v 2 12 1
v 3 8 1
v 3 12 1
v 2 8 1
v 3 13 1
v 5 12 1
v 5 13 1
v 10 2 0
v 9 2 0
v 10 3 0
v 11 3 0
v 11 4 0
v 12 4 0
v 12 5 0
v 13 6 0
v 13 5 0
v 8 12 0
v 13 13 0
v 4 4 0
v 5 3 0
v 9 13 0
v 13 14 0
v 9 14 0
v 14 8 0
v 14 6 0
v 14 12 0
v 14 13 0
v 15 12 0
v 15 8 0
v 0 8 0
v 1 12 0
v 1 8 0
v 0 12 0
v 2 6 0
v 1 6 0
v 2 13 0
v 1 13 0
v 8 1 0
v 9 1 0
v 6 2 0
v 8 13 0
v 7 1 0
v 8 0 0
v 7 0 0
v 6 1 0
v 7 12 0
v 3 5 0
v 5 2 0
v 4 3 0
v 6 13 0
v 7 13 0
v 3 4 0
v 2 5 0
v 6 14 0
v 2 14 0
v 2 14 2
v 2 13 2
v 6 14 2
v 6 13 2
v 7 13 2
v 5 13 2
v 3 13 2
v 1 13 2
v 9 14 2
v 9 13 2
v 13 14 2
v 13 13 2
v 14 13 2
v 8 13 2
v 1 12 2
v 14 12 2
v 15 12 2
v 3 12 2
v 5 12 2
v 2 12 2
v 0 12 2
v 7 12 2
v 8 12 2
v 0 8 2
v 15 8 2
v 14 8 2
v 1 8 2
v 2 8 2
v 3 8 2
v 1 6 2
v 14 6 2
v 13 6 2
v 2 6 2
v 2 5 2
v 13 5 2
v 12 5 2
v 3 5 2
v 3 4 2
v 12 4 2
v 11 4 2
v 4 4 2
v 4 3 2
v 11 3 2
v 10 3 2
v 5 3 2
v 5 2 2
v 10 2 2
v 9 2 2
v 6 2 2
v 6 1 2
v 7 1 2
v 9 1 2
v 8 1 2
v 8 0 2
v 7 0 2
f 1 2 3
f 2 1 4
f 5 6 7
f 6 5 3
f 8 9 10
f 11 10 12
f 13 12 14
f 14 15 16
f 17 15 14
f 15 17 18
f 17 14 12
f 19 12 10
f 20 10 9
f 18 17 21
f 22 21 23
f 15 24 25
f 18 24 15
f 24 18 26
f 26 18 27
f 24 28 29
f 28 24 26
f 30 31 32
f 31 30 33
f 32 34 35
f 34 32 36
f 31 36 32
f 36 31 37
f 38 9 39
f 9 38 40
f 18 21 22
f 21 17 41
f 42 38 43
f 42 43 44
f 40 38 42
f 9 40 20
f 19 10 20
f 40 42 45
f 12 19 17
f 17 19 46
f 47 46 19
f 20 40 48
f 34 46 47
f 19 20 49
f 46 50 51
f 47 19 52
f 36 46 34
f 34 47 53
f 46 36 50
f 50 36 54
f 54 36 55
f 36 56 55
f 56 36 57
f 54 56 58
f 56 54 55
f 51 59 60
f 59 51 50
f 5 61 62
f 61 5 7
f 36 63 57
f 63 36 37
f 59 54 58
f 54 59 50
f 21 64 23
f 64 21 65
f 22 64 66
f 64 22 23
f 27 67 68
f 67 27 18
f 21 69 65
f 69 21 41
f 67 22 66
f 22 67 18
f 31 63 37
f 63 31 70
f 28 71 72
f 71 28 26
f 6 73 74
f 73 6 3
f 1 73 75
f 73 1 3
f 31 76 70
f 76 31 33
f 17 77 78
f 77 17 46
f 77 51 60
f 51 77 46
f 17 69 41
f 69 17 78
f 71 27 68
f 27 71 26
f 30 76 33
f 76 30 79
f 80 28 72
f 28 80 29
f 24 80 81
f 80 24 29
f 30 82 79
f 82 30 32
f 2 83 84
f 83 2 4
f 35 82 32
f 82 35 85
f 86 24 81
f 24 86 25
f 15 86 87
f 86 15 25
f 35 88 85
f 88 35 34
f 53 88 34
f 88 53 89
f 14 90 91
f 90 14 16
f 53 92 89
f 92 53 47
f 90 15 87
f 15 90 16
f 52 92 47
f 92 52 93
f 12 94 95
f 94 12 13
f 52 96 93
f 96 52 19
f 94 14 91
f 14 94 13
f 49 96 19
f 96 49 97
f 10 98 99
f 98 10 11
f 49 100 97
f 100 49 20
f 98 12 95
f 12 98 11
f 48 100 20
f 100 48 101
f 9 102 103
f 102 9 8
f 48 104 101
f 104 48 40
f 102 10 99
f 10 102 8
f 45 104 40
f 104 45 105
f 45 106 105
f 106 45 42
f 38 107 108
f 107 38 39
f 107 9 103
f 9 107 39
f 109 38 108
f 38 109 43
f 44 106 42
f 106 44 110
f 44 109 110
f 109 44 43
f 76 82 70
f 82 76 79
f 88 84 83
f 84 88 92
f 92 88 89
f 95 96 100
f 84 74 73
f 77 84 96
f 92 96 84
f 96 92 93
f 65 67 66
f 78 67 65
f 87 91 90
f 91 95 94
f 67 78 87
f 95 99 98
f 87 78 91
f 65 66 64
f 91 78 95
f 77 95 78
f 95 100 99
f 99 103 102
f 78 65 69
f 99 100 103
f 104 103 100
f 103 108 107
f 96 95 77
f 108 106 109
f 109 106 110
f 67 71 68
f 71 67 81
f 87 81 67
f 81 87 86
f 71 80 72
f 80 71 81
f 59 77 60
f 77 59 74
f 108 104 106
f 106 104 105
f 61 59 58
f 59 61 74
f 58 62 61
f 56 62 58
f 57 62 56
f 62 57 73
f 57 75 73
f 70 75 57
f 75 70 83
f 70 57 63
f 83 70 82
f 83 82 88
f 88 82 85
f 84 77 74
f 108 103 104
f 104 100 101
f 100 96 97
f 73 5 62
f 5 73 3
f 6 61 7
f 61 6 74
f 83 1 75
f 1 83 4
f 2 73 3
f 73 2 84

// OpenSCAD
/*
 * 3D Pixel Art - Heart 3
 * Copyright (c) 2019 Anar Software LLC. < http://anars.com >
 *
 * This program is free software: you can redistribute it and/or modify it under
 * the terms of the GNU General Public License as published by the Free Software
 * Foundation, either version 3 of the License, or (at your option) any later
 * version.
 *
 * This program is distributed in the hope that it will be useful, but WITHOUT
 * ANY WARRANTY; without even the implied warranty of MERCHANTABILITY or FITNESS
 * FOR A PARTICULAR PURPOSE. See the GNU General Public License for more details.
 *
 * You should have received a copy of the GNU General Public License along with
 * this program. If not, see < http://www.gnu.org/licenses/ >
 *
 */

/* [Global] */

/* [Pixel Settings] */

// Pixel Length (X)
pixel_length = 1;

// Pixel Width (Y)
pixel_width = 1;

// Pixel Height (Z)
pixel_height = 1;

/* [Hidden] */

data=[[
     "  XXXX   XXXX",
     " XXXXXX XXXXXX",
     "XXXXXXXXXXXXXXX",
     "XXXXXXXXXXXXXXX",
     "XXXXXXXXXXXXXXX",
     "XXXXXXXXXXXXXXX",
     " XXXXXXXXXXXXX",
     " XXXXXXXXXXXXX",
     "  XXXXXXXXXXX",
     "   XXXXXXXXX",
     "    XXXXXXX",
     "     XXXXX",
     "      XXX",
     "       X"
     ],[
     "  XXXX   XXXX",
     " XX  XX XXXXXX",
     "XX XXXXXXXXXXXX",
     "XX XXXXXXXXXXXX",
     "XX XXXXXXXXXXXX",
     "XX XXXXXXXXXXXX",
     " XXXXXXXXXXXXX",
     " XXXXXXXXXXXXX",
     "  XXXXXXXXXXX",
     "   XXXXXXXXX",
     "    XXXXXXX",
     "     XXXXX",
     "      XXX",
     "       X"]];

for (z = [0 : len(data) - 1])
    for (y = [0 : len(data[z]) - 1])
        if (len(data[z][y]) > 0)
            for (x = [0 : len(data[z][y]) - 1])
                if (data[z][y][x] == "X")
                    translate([x * pixel_length, (len(data[z]) - 1 - y) * pixel_width, z * pixel_height])
                        cube([pixel_length, pixel_width, pixel_height]);
